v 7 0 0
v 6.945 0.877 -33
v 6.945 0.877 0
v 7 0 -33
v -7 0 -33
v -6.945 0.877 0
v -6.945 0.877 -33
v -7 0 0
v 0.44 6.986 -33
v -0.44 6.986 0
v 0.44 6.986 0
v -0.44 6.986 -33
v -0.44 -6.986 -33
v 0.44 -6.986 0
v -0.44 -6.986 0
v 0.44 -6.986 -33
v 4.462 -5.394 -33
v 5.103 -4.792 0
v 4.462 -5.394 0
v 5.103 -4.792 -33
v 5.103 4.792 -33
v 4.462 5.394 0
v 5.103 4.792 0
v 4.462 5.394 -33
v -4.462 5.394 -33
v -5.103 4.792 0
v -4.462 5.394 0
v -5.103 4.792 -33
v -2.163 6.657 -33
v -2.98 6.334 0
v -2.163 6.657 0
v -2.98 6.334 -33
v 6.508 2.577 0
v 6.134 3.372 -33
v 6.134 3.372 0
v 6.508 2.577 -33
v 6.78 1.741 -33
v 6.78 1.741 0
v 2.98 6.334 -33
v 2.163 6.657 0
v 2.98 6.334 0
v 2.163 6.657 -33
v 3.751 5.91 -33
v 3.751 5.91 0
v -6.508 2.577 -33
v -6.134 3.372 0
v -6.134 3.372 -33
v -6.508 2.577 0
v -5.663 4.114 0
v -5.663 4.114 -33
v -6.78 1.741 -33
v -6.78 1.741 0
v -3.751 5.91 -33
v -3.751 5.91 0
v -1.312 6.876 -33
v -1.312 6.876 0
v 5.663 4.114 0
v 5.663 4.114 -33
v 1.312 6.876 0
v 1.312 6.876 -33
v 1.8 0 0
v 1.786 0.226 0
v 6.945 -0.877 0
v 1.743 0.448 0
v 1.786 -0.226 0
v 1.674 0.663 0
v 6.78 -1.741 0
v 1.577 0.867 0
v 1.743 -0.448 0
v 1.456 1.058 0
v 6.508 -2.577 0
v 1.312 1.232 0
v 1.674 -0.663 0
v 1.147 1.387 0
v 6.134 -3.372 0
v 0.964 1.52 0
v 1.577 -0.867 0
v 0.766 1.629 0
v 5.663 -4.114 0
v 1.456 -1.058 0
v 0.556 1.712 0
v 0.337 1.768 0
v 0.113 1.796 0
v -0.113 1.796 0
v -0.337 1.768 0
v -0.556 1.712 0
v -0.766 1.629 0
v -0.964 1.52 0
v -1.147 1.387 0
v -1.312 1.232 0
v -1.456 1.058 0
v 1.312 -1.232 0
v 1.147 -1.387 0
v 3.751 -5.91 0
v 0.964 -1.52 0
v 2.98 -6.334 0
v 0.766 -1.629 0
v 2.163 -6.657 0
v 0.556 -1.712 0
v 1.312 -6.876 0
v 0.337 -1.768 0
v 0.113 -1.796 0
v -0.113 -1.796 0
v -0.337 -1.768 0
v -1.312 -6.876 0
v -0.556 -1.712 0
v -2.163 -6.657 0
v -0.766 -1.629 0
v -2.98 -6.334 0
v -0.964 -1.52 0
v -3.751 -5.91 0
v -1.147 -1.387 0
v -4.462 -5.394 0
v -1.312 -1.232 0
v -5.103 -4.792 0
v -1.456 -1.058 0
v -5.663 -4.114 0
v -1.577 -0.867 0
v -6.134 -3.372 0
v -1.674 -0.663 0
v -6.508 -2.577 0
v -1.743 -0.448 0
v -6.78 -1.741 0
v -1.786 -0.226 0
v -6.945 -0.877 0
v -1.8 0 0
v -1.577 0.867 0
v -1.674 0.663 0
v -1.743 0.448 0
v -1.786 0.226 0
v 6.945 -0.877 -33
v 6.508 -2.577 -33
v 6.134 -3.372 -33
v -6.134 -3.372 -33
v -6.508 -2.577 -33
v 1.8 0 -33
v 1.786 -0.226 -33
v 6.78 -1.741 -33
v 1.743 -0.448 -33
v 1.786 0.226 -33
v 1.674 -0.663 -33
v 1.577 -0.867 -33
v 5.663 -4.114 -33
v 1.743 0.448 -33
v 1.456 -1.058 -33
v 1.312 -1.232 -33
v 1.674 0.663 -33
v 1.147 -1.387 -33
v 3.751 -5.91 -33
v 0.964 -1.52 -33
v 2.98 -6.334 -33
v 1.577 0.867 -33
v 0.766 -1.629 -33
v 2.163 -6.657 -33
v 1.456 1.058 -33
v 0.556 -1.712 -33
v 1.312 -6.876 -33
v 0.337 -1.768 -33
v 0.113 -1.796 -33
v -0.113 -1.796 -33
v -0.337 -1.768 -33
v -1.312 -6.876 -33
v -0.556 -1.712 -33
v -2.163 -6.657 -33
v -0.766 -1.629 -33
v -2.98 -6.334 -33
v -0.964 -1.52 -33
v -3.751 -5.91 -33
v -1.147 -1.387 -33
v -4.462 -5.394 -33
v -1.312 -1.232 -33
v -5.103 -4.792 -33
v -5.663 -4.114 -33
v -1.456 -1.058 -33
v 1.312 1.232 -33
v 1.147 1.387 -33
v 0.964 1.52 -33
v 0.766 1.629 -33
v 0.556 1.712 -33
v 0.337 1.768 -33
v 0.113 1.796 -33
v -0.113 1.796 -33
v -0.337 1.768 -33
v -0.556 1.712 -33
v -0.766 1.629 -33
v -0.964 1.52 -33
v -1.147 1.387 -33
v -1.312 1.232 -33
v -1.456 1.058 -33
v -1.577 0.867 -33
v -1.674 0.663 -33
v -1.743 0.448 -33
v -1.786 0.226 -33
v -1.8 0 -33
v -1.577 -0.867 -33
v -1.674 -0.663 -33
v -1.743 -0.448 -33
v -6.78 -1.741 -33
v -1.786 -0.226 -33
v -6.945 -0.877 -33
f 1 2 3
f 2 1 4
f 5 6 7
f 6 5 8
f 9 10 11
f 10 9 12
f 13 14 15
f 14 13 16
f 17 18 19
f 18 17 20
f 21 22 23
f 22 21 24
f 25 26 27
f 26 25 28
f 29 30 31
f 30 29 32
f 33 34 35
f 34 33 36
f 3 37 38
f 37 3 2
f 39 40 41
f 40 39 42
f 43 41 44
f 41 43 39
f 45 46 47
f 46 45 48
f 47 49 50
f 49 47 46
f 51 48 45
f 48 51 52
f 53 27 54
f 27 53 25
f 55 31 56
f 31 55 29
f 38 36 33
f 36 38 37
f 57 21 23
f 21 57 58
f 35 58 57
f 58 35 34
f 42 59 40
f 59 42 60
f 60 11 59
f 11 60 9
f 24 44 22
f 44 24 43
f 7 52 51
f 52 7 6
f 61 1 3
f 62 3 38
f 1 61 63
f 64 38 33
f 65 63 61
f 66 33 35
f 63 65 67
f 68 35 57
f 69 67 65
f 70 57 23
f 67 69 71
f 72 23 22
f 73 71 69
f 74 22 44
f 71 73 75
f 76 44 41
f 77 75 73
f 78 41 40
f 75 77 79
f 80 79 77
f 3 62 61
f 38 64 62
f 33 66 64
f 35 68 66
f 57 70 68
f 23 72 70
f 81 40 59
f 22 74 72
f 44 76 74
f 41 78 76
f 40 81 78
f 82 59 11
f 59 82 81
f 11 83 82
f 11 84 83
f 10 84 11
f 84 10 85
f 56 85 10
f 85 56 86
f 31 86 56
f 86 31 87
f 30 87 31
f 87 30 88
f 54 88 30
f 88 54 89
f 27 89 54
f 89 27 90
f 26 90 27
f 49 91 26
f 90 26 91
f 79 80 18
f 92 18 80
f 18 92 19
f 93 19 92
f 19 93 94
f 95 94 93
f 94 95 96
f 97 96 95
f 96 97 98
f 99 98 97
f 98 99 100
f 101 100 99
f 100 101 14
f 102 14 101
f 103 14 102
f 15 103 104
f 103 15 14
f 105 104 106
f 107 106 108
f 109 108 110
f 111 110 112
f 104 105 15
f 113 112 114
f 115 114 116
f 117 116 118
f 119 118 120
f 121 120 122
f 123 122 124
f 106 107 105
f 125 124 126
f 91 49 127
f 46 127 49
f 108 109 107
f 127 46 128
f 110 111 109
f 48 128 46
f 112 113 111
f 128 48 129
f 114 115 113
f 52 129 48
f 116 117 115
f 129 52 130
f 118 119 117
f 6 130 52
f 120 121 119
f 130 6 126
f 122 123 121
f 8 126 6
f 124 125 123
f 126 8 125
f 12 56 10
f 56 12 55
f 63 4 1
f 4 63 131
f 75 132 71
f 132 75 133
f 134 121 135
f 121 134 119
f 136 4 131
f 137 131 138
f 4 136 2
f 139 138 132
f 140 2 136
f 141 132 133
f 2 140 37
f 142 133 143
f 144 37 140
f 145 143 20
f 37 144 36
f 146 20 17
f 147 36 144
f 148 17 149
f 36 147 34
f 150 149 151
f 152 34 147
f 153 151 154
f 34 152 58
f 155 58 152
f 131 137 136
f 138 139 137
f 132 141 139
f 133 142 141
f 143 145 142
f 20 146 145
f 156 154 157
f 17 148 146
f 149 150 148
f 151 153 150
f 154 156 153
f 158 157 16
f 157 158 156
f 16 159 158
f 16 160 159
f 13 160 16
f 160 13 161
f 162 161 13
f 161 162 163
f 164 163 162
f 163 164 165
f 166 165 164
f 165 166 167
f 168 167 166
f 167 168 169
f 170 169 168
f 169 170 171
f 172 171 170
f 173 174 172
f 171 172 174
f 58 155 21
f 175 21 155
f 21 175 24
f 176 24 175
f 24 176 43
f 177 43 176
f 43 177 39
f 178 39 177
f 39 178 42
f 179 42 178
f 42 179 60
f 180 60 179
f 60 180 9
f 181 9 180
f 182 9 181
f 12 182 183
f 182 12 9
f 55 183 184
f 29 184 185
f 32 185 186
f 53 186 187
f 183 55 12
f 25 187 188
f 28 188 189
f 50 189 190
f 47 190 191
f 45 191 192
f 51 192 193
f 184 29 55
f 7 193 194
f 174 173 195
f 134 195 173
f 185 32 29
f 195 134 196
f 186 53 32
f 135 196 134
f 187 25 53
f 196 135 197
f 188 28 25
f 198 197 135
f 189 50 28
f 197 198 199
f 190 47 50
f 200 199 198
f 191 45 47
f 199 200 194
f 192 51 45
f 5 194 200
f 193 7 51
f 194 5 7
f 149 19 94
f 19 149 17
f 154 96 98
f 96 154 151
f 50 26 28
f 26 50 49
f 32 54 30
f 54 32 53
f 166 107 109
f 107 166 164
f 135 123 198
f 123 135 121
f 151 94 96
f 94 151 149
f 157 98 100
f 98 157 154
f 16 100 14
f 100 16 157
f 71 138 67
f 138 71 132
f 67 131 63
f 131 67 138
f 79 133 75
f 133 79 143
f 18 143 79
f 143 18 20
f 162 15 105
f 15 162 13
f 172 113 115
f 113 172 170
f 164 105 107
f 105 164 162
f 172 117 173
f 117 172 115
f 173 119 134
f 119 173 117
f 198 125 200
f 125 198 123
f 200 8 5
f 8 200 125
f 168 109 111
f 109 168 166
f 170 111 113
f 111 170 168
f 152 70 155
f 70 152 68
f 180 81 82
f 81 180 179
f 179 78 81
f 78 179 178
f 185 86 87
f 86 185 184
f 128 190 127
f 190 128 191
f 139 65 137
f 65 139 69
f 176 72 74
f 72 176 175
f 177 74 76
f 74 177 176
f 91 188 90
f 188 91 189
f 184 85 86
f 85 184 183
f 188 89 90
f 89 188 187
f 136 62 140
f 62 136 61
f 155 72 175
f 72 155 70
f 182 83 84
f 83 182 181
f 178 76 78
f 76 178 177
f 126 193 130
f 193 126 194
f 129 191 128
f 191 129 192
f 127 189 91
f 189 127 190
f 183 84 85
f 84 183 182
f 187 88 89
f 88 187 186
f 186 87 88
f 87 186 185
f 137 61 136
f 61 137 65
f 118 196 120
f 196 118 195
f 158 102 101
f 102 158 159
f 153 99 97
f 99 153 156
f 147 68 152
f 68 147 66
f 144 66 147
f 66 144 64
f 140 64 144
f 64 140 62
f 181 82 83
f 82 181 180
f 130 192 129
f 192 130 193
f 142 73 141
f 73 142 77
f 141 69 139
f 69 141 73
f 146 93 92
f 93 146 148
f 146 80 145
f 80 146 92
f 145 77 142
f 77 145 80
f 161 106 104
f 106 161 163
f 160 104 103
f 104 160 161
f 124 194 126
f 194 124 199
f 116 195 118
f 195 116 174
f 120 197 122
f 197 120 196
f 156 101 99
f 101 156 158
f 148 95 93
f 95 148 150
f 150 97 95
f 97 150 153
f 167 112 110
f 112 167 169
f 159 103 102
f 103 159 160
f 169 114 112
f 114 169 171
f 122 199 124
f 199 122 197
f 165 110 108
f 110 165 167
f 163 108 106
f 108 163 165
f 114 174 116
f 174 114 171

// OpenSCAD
$fn = 50;


difference() {
	union() {
		translate(v = [0, 0, -33.0000000000]) {
			cylinder(h = 33, r = 7.0000000000);
		}
		cylinder(h = 0, r = 17.0000000000);
	}
	union() {
		#translate(v = [0, 0, -33]) {
			cylinder(h = 33, r = 1.8000000000);
		}
	}
}
